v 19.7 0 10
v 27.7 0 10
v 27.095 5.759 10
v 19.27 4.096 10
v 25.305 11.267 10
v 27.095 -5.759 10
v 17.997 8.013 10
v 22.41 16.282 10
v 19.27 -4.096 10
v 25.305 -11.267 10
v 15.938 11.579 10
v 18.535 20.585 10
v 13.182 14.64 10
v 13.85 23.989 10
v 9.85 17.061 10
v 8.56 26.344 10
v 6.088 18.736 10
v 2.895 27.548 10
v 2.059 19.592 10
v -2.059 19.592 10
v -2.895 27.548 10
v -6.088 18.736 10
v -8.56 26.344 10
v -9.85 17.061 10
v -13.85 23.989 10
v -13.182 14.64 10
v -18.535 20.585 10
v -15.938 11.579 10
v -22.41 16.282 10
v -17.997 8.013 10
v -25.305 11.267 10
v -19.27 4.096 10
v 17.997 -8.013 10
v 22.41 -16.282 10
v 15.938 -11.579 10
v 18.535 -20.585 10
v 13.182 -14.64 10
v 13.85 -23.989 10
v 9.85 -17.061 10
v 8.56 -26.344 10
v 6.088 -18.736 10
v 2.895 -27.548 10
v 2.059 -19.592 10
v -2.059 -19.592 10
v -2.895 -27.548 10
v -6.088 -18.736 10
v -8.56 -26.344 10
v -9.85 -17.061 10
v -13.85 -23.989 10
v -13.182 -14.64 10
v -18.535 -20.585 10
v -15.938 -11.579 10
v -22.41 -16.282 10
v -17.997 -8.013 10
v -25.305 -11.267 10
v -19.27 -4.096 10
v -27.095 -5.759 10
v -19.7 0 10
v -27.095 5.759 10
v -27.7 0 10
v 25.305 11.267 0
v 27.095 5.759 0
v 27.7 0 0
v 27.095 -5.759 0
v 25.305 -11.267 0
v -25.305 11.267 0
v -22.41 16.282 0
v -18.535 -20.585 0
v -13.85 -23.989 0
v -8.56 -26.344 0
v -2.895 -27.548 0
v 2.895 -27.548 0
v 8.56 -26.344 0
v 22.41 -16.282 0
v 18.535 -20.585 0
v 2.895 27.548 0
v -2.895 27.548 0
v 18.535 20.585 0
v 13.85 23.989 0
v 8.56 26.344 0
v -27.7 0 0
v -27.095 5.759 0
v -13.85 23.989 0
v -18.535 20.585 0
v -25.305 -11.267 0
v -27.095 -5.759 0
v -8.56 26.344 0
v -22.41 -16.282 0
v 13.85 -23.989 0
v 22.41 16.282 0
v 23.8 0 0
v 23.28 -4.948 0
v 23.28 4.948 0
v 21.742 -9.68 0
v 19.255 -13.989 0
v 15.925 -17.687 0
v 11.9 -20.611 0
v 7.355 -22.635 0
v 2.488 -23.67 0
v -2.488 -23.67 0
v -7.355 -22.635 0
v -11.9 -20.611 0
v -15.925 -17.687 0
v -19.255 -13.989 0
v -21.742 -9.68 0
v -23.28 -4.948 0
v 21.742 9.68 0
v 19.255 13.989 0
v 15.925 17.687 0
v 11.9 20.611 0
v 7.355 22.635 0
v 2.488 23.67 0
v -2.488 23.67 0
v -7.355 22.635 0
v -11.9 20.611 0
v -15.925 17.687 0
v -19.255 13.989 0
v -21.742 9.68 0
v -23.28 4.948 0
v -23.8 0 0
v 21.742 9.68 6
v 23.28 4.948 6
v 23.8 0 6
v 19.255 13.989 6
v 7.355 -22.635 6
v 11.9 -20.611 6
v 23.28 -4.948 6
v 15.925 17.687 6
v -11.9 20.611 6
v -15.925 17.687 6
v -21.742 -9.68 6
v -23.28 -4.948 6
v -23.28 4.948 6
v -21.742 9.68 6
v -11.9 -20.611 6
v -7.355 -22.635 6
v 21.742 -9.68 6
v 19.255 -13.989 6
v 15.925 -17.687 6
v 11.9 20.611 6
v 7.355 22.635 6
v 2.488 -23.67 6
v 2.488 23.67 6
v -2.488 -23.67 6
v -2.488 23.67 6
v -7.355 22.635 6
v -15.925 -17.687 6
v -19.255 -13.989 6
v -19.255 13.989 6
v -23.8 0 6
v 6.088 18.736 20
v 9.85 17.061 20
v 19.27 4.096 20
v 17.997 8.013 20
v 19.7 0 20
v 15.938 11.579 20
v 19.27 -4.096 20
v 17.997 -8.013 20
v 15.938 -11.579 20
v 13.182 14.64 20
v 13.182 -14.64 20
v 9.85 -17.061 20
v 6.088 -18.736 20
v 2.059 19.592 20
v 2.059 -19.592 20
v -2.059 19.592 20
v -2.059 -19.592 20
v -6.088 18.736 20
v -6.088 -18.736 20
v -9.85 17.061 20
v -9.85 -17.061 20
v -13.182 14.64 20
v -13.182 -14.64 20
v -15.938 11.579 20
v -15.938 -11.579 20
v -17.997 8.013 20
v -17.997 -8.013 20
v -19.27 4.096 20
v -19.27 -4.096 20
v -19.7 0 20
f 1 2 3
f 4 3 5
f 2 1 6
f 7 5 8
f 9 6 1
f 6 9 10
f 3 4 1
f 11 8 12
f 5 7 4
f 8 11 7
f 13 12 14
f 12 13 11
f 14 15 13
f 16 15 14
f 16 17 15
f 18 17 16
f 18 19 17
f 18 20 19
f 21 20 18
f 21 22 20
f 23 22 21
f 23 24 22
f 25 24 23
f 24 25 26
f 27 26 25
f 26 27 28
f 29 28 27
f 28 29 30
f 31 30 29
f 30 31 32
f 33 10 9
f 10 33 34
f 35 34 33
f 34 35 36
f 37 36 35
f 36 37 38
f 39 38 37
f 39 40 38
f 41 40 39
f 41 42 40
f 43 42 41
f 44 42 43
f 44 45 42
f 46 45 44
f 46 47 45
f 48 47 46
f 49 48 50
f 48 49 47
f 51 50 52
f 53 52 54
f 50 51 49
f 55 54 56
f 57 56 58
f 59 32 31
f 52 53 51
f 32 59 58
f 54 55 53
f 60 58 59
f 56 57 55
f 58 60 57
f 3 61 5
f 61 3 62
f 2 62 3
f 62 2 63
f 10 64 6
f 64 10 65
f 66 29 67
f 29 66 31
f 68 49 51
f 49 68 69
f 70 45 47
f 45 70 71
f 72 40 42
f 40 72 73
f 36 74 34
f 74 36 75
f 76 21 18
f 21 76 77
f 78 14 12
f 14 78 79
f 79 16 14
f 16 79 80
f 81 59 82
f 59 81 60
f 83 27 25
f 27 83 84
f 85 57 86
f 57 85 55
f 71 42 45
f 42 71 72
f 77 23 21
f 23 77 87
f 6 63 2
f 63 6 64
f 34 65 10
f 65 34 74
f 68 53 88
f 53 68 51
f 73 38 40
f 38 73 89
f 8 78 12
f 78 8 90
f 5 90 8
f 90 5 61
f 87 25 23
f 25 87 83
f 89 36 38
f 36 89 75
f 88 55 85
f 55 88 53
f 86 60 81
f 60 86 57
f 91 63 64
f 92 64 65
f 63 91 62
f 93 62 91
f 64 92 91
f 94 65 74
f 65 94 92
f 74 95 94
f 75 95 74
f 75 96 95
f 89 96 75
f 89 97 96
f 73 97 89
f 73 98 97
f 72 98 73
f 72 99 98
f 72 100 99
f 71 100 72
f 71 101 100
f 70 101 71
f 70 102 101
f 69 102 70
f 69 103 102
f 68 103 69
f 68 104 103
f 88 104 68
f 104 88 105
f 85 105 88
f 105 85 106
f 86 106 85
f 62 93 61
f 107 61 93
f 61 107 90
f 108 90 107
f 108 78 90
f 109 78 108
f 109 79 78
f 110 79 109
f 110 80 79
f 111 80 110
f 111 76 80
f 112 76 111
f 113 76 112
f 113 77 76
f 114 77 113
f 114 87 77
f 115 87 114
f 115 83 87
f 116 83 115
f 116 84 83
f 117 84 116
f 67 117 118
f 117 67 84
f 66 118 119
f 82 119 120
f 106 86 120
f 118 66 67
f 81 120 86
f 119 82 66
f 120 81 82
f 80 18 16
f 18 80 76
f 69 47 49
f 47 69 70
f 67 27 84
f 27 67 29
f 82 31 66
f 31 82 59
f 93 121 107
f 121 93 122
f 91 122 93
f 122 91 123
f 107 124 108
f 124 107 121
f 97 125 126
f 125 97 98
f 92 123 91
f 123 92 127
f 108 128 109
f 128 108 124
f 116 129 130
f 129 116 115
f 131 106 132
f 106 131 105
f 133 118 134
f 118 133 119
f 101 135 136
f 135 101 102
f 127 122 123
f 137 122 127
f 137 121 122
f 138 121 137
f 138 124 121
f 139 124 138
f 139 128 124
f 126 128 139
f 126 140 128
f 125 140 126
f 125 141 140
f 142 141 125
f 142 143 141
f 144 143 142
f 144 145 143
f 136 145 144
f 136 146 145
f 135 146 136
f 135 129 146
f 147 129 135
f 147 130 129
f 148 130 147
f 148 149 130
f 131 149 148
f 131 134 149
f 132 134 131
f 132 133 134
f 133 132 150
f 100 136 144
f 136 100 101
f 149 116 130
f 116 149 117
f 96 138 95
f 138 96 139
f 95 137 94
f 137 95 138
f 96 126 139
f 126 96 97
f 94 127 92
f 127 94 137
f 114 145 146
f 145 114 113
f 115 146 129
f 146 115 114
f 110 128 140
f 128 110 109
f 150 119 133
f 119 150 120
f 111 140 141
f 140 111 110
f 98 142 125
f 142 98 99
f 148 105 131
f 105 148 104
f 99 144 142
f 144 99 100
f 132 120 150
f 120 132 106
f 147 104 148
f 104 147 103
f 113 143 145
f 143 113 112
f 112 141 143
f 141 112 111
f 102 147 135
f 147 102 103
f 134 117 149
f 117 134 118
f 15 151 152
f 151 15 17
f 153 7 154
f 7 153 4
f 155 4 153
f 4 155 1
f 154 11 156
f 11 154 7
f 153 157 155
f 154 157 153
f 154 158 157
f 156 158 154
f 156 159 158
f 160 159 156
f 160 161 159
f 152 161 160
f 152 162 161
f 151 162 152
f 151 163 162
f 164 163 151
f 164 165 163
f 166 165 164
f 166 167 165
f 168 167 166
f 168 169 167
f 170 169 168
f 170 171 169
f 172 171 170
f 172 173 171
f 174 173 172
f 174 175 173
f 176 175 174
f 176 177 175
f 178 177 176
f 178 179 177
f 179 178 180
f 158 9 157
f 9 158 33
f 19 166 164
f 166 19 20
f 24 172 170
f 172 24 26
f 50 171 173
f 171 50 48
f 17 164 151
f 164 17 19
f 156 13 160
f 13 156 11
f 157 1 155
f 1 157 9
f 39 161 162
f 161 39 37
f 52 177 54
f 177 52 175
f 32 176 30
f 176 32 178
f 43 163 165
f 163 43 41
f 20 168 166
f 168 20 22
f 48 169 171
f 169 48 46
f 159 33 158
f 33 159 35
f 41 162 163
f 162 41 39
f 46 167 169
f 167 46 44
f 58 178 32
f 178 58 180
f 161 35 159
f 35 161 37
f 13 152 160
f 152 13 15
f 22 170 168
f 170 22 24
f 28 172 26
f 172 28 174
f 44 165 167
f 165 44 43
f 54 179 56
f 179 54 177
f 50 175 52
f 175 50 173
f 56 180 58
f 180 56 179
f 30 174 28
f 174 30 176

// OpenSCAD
translate([0,0,10])
    cylinder(10,r=19.7,true);

difference(){
cylinder(10,r=27.7,true);
translate([0,0,-1])
    cylinder(7,r=23.8,true);
}
